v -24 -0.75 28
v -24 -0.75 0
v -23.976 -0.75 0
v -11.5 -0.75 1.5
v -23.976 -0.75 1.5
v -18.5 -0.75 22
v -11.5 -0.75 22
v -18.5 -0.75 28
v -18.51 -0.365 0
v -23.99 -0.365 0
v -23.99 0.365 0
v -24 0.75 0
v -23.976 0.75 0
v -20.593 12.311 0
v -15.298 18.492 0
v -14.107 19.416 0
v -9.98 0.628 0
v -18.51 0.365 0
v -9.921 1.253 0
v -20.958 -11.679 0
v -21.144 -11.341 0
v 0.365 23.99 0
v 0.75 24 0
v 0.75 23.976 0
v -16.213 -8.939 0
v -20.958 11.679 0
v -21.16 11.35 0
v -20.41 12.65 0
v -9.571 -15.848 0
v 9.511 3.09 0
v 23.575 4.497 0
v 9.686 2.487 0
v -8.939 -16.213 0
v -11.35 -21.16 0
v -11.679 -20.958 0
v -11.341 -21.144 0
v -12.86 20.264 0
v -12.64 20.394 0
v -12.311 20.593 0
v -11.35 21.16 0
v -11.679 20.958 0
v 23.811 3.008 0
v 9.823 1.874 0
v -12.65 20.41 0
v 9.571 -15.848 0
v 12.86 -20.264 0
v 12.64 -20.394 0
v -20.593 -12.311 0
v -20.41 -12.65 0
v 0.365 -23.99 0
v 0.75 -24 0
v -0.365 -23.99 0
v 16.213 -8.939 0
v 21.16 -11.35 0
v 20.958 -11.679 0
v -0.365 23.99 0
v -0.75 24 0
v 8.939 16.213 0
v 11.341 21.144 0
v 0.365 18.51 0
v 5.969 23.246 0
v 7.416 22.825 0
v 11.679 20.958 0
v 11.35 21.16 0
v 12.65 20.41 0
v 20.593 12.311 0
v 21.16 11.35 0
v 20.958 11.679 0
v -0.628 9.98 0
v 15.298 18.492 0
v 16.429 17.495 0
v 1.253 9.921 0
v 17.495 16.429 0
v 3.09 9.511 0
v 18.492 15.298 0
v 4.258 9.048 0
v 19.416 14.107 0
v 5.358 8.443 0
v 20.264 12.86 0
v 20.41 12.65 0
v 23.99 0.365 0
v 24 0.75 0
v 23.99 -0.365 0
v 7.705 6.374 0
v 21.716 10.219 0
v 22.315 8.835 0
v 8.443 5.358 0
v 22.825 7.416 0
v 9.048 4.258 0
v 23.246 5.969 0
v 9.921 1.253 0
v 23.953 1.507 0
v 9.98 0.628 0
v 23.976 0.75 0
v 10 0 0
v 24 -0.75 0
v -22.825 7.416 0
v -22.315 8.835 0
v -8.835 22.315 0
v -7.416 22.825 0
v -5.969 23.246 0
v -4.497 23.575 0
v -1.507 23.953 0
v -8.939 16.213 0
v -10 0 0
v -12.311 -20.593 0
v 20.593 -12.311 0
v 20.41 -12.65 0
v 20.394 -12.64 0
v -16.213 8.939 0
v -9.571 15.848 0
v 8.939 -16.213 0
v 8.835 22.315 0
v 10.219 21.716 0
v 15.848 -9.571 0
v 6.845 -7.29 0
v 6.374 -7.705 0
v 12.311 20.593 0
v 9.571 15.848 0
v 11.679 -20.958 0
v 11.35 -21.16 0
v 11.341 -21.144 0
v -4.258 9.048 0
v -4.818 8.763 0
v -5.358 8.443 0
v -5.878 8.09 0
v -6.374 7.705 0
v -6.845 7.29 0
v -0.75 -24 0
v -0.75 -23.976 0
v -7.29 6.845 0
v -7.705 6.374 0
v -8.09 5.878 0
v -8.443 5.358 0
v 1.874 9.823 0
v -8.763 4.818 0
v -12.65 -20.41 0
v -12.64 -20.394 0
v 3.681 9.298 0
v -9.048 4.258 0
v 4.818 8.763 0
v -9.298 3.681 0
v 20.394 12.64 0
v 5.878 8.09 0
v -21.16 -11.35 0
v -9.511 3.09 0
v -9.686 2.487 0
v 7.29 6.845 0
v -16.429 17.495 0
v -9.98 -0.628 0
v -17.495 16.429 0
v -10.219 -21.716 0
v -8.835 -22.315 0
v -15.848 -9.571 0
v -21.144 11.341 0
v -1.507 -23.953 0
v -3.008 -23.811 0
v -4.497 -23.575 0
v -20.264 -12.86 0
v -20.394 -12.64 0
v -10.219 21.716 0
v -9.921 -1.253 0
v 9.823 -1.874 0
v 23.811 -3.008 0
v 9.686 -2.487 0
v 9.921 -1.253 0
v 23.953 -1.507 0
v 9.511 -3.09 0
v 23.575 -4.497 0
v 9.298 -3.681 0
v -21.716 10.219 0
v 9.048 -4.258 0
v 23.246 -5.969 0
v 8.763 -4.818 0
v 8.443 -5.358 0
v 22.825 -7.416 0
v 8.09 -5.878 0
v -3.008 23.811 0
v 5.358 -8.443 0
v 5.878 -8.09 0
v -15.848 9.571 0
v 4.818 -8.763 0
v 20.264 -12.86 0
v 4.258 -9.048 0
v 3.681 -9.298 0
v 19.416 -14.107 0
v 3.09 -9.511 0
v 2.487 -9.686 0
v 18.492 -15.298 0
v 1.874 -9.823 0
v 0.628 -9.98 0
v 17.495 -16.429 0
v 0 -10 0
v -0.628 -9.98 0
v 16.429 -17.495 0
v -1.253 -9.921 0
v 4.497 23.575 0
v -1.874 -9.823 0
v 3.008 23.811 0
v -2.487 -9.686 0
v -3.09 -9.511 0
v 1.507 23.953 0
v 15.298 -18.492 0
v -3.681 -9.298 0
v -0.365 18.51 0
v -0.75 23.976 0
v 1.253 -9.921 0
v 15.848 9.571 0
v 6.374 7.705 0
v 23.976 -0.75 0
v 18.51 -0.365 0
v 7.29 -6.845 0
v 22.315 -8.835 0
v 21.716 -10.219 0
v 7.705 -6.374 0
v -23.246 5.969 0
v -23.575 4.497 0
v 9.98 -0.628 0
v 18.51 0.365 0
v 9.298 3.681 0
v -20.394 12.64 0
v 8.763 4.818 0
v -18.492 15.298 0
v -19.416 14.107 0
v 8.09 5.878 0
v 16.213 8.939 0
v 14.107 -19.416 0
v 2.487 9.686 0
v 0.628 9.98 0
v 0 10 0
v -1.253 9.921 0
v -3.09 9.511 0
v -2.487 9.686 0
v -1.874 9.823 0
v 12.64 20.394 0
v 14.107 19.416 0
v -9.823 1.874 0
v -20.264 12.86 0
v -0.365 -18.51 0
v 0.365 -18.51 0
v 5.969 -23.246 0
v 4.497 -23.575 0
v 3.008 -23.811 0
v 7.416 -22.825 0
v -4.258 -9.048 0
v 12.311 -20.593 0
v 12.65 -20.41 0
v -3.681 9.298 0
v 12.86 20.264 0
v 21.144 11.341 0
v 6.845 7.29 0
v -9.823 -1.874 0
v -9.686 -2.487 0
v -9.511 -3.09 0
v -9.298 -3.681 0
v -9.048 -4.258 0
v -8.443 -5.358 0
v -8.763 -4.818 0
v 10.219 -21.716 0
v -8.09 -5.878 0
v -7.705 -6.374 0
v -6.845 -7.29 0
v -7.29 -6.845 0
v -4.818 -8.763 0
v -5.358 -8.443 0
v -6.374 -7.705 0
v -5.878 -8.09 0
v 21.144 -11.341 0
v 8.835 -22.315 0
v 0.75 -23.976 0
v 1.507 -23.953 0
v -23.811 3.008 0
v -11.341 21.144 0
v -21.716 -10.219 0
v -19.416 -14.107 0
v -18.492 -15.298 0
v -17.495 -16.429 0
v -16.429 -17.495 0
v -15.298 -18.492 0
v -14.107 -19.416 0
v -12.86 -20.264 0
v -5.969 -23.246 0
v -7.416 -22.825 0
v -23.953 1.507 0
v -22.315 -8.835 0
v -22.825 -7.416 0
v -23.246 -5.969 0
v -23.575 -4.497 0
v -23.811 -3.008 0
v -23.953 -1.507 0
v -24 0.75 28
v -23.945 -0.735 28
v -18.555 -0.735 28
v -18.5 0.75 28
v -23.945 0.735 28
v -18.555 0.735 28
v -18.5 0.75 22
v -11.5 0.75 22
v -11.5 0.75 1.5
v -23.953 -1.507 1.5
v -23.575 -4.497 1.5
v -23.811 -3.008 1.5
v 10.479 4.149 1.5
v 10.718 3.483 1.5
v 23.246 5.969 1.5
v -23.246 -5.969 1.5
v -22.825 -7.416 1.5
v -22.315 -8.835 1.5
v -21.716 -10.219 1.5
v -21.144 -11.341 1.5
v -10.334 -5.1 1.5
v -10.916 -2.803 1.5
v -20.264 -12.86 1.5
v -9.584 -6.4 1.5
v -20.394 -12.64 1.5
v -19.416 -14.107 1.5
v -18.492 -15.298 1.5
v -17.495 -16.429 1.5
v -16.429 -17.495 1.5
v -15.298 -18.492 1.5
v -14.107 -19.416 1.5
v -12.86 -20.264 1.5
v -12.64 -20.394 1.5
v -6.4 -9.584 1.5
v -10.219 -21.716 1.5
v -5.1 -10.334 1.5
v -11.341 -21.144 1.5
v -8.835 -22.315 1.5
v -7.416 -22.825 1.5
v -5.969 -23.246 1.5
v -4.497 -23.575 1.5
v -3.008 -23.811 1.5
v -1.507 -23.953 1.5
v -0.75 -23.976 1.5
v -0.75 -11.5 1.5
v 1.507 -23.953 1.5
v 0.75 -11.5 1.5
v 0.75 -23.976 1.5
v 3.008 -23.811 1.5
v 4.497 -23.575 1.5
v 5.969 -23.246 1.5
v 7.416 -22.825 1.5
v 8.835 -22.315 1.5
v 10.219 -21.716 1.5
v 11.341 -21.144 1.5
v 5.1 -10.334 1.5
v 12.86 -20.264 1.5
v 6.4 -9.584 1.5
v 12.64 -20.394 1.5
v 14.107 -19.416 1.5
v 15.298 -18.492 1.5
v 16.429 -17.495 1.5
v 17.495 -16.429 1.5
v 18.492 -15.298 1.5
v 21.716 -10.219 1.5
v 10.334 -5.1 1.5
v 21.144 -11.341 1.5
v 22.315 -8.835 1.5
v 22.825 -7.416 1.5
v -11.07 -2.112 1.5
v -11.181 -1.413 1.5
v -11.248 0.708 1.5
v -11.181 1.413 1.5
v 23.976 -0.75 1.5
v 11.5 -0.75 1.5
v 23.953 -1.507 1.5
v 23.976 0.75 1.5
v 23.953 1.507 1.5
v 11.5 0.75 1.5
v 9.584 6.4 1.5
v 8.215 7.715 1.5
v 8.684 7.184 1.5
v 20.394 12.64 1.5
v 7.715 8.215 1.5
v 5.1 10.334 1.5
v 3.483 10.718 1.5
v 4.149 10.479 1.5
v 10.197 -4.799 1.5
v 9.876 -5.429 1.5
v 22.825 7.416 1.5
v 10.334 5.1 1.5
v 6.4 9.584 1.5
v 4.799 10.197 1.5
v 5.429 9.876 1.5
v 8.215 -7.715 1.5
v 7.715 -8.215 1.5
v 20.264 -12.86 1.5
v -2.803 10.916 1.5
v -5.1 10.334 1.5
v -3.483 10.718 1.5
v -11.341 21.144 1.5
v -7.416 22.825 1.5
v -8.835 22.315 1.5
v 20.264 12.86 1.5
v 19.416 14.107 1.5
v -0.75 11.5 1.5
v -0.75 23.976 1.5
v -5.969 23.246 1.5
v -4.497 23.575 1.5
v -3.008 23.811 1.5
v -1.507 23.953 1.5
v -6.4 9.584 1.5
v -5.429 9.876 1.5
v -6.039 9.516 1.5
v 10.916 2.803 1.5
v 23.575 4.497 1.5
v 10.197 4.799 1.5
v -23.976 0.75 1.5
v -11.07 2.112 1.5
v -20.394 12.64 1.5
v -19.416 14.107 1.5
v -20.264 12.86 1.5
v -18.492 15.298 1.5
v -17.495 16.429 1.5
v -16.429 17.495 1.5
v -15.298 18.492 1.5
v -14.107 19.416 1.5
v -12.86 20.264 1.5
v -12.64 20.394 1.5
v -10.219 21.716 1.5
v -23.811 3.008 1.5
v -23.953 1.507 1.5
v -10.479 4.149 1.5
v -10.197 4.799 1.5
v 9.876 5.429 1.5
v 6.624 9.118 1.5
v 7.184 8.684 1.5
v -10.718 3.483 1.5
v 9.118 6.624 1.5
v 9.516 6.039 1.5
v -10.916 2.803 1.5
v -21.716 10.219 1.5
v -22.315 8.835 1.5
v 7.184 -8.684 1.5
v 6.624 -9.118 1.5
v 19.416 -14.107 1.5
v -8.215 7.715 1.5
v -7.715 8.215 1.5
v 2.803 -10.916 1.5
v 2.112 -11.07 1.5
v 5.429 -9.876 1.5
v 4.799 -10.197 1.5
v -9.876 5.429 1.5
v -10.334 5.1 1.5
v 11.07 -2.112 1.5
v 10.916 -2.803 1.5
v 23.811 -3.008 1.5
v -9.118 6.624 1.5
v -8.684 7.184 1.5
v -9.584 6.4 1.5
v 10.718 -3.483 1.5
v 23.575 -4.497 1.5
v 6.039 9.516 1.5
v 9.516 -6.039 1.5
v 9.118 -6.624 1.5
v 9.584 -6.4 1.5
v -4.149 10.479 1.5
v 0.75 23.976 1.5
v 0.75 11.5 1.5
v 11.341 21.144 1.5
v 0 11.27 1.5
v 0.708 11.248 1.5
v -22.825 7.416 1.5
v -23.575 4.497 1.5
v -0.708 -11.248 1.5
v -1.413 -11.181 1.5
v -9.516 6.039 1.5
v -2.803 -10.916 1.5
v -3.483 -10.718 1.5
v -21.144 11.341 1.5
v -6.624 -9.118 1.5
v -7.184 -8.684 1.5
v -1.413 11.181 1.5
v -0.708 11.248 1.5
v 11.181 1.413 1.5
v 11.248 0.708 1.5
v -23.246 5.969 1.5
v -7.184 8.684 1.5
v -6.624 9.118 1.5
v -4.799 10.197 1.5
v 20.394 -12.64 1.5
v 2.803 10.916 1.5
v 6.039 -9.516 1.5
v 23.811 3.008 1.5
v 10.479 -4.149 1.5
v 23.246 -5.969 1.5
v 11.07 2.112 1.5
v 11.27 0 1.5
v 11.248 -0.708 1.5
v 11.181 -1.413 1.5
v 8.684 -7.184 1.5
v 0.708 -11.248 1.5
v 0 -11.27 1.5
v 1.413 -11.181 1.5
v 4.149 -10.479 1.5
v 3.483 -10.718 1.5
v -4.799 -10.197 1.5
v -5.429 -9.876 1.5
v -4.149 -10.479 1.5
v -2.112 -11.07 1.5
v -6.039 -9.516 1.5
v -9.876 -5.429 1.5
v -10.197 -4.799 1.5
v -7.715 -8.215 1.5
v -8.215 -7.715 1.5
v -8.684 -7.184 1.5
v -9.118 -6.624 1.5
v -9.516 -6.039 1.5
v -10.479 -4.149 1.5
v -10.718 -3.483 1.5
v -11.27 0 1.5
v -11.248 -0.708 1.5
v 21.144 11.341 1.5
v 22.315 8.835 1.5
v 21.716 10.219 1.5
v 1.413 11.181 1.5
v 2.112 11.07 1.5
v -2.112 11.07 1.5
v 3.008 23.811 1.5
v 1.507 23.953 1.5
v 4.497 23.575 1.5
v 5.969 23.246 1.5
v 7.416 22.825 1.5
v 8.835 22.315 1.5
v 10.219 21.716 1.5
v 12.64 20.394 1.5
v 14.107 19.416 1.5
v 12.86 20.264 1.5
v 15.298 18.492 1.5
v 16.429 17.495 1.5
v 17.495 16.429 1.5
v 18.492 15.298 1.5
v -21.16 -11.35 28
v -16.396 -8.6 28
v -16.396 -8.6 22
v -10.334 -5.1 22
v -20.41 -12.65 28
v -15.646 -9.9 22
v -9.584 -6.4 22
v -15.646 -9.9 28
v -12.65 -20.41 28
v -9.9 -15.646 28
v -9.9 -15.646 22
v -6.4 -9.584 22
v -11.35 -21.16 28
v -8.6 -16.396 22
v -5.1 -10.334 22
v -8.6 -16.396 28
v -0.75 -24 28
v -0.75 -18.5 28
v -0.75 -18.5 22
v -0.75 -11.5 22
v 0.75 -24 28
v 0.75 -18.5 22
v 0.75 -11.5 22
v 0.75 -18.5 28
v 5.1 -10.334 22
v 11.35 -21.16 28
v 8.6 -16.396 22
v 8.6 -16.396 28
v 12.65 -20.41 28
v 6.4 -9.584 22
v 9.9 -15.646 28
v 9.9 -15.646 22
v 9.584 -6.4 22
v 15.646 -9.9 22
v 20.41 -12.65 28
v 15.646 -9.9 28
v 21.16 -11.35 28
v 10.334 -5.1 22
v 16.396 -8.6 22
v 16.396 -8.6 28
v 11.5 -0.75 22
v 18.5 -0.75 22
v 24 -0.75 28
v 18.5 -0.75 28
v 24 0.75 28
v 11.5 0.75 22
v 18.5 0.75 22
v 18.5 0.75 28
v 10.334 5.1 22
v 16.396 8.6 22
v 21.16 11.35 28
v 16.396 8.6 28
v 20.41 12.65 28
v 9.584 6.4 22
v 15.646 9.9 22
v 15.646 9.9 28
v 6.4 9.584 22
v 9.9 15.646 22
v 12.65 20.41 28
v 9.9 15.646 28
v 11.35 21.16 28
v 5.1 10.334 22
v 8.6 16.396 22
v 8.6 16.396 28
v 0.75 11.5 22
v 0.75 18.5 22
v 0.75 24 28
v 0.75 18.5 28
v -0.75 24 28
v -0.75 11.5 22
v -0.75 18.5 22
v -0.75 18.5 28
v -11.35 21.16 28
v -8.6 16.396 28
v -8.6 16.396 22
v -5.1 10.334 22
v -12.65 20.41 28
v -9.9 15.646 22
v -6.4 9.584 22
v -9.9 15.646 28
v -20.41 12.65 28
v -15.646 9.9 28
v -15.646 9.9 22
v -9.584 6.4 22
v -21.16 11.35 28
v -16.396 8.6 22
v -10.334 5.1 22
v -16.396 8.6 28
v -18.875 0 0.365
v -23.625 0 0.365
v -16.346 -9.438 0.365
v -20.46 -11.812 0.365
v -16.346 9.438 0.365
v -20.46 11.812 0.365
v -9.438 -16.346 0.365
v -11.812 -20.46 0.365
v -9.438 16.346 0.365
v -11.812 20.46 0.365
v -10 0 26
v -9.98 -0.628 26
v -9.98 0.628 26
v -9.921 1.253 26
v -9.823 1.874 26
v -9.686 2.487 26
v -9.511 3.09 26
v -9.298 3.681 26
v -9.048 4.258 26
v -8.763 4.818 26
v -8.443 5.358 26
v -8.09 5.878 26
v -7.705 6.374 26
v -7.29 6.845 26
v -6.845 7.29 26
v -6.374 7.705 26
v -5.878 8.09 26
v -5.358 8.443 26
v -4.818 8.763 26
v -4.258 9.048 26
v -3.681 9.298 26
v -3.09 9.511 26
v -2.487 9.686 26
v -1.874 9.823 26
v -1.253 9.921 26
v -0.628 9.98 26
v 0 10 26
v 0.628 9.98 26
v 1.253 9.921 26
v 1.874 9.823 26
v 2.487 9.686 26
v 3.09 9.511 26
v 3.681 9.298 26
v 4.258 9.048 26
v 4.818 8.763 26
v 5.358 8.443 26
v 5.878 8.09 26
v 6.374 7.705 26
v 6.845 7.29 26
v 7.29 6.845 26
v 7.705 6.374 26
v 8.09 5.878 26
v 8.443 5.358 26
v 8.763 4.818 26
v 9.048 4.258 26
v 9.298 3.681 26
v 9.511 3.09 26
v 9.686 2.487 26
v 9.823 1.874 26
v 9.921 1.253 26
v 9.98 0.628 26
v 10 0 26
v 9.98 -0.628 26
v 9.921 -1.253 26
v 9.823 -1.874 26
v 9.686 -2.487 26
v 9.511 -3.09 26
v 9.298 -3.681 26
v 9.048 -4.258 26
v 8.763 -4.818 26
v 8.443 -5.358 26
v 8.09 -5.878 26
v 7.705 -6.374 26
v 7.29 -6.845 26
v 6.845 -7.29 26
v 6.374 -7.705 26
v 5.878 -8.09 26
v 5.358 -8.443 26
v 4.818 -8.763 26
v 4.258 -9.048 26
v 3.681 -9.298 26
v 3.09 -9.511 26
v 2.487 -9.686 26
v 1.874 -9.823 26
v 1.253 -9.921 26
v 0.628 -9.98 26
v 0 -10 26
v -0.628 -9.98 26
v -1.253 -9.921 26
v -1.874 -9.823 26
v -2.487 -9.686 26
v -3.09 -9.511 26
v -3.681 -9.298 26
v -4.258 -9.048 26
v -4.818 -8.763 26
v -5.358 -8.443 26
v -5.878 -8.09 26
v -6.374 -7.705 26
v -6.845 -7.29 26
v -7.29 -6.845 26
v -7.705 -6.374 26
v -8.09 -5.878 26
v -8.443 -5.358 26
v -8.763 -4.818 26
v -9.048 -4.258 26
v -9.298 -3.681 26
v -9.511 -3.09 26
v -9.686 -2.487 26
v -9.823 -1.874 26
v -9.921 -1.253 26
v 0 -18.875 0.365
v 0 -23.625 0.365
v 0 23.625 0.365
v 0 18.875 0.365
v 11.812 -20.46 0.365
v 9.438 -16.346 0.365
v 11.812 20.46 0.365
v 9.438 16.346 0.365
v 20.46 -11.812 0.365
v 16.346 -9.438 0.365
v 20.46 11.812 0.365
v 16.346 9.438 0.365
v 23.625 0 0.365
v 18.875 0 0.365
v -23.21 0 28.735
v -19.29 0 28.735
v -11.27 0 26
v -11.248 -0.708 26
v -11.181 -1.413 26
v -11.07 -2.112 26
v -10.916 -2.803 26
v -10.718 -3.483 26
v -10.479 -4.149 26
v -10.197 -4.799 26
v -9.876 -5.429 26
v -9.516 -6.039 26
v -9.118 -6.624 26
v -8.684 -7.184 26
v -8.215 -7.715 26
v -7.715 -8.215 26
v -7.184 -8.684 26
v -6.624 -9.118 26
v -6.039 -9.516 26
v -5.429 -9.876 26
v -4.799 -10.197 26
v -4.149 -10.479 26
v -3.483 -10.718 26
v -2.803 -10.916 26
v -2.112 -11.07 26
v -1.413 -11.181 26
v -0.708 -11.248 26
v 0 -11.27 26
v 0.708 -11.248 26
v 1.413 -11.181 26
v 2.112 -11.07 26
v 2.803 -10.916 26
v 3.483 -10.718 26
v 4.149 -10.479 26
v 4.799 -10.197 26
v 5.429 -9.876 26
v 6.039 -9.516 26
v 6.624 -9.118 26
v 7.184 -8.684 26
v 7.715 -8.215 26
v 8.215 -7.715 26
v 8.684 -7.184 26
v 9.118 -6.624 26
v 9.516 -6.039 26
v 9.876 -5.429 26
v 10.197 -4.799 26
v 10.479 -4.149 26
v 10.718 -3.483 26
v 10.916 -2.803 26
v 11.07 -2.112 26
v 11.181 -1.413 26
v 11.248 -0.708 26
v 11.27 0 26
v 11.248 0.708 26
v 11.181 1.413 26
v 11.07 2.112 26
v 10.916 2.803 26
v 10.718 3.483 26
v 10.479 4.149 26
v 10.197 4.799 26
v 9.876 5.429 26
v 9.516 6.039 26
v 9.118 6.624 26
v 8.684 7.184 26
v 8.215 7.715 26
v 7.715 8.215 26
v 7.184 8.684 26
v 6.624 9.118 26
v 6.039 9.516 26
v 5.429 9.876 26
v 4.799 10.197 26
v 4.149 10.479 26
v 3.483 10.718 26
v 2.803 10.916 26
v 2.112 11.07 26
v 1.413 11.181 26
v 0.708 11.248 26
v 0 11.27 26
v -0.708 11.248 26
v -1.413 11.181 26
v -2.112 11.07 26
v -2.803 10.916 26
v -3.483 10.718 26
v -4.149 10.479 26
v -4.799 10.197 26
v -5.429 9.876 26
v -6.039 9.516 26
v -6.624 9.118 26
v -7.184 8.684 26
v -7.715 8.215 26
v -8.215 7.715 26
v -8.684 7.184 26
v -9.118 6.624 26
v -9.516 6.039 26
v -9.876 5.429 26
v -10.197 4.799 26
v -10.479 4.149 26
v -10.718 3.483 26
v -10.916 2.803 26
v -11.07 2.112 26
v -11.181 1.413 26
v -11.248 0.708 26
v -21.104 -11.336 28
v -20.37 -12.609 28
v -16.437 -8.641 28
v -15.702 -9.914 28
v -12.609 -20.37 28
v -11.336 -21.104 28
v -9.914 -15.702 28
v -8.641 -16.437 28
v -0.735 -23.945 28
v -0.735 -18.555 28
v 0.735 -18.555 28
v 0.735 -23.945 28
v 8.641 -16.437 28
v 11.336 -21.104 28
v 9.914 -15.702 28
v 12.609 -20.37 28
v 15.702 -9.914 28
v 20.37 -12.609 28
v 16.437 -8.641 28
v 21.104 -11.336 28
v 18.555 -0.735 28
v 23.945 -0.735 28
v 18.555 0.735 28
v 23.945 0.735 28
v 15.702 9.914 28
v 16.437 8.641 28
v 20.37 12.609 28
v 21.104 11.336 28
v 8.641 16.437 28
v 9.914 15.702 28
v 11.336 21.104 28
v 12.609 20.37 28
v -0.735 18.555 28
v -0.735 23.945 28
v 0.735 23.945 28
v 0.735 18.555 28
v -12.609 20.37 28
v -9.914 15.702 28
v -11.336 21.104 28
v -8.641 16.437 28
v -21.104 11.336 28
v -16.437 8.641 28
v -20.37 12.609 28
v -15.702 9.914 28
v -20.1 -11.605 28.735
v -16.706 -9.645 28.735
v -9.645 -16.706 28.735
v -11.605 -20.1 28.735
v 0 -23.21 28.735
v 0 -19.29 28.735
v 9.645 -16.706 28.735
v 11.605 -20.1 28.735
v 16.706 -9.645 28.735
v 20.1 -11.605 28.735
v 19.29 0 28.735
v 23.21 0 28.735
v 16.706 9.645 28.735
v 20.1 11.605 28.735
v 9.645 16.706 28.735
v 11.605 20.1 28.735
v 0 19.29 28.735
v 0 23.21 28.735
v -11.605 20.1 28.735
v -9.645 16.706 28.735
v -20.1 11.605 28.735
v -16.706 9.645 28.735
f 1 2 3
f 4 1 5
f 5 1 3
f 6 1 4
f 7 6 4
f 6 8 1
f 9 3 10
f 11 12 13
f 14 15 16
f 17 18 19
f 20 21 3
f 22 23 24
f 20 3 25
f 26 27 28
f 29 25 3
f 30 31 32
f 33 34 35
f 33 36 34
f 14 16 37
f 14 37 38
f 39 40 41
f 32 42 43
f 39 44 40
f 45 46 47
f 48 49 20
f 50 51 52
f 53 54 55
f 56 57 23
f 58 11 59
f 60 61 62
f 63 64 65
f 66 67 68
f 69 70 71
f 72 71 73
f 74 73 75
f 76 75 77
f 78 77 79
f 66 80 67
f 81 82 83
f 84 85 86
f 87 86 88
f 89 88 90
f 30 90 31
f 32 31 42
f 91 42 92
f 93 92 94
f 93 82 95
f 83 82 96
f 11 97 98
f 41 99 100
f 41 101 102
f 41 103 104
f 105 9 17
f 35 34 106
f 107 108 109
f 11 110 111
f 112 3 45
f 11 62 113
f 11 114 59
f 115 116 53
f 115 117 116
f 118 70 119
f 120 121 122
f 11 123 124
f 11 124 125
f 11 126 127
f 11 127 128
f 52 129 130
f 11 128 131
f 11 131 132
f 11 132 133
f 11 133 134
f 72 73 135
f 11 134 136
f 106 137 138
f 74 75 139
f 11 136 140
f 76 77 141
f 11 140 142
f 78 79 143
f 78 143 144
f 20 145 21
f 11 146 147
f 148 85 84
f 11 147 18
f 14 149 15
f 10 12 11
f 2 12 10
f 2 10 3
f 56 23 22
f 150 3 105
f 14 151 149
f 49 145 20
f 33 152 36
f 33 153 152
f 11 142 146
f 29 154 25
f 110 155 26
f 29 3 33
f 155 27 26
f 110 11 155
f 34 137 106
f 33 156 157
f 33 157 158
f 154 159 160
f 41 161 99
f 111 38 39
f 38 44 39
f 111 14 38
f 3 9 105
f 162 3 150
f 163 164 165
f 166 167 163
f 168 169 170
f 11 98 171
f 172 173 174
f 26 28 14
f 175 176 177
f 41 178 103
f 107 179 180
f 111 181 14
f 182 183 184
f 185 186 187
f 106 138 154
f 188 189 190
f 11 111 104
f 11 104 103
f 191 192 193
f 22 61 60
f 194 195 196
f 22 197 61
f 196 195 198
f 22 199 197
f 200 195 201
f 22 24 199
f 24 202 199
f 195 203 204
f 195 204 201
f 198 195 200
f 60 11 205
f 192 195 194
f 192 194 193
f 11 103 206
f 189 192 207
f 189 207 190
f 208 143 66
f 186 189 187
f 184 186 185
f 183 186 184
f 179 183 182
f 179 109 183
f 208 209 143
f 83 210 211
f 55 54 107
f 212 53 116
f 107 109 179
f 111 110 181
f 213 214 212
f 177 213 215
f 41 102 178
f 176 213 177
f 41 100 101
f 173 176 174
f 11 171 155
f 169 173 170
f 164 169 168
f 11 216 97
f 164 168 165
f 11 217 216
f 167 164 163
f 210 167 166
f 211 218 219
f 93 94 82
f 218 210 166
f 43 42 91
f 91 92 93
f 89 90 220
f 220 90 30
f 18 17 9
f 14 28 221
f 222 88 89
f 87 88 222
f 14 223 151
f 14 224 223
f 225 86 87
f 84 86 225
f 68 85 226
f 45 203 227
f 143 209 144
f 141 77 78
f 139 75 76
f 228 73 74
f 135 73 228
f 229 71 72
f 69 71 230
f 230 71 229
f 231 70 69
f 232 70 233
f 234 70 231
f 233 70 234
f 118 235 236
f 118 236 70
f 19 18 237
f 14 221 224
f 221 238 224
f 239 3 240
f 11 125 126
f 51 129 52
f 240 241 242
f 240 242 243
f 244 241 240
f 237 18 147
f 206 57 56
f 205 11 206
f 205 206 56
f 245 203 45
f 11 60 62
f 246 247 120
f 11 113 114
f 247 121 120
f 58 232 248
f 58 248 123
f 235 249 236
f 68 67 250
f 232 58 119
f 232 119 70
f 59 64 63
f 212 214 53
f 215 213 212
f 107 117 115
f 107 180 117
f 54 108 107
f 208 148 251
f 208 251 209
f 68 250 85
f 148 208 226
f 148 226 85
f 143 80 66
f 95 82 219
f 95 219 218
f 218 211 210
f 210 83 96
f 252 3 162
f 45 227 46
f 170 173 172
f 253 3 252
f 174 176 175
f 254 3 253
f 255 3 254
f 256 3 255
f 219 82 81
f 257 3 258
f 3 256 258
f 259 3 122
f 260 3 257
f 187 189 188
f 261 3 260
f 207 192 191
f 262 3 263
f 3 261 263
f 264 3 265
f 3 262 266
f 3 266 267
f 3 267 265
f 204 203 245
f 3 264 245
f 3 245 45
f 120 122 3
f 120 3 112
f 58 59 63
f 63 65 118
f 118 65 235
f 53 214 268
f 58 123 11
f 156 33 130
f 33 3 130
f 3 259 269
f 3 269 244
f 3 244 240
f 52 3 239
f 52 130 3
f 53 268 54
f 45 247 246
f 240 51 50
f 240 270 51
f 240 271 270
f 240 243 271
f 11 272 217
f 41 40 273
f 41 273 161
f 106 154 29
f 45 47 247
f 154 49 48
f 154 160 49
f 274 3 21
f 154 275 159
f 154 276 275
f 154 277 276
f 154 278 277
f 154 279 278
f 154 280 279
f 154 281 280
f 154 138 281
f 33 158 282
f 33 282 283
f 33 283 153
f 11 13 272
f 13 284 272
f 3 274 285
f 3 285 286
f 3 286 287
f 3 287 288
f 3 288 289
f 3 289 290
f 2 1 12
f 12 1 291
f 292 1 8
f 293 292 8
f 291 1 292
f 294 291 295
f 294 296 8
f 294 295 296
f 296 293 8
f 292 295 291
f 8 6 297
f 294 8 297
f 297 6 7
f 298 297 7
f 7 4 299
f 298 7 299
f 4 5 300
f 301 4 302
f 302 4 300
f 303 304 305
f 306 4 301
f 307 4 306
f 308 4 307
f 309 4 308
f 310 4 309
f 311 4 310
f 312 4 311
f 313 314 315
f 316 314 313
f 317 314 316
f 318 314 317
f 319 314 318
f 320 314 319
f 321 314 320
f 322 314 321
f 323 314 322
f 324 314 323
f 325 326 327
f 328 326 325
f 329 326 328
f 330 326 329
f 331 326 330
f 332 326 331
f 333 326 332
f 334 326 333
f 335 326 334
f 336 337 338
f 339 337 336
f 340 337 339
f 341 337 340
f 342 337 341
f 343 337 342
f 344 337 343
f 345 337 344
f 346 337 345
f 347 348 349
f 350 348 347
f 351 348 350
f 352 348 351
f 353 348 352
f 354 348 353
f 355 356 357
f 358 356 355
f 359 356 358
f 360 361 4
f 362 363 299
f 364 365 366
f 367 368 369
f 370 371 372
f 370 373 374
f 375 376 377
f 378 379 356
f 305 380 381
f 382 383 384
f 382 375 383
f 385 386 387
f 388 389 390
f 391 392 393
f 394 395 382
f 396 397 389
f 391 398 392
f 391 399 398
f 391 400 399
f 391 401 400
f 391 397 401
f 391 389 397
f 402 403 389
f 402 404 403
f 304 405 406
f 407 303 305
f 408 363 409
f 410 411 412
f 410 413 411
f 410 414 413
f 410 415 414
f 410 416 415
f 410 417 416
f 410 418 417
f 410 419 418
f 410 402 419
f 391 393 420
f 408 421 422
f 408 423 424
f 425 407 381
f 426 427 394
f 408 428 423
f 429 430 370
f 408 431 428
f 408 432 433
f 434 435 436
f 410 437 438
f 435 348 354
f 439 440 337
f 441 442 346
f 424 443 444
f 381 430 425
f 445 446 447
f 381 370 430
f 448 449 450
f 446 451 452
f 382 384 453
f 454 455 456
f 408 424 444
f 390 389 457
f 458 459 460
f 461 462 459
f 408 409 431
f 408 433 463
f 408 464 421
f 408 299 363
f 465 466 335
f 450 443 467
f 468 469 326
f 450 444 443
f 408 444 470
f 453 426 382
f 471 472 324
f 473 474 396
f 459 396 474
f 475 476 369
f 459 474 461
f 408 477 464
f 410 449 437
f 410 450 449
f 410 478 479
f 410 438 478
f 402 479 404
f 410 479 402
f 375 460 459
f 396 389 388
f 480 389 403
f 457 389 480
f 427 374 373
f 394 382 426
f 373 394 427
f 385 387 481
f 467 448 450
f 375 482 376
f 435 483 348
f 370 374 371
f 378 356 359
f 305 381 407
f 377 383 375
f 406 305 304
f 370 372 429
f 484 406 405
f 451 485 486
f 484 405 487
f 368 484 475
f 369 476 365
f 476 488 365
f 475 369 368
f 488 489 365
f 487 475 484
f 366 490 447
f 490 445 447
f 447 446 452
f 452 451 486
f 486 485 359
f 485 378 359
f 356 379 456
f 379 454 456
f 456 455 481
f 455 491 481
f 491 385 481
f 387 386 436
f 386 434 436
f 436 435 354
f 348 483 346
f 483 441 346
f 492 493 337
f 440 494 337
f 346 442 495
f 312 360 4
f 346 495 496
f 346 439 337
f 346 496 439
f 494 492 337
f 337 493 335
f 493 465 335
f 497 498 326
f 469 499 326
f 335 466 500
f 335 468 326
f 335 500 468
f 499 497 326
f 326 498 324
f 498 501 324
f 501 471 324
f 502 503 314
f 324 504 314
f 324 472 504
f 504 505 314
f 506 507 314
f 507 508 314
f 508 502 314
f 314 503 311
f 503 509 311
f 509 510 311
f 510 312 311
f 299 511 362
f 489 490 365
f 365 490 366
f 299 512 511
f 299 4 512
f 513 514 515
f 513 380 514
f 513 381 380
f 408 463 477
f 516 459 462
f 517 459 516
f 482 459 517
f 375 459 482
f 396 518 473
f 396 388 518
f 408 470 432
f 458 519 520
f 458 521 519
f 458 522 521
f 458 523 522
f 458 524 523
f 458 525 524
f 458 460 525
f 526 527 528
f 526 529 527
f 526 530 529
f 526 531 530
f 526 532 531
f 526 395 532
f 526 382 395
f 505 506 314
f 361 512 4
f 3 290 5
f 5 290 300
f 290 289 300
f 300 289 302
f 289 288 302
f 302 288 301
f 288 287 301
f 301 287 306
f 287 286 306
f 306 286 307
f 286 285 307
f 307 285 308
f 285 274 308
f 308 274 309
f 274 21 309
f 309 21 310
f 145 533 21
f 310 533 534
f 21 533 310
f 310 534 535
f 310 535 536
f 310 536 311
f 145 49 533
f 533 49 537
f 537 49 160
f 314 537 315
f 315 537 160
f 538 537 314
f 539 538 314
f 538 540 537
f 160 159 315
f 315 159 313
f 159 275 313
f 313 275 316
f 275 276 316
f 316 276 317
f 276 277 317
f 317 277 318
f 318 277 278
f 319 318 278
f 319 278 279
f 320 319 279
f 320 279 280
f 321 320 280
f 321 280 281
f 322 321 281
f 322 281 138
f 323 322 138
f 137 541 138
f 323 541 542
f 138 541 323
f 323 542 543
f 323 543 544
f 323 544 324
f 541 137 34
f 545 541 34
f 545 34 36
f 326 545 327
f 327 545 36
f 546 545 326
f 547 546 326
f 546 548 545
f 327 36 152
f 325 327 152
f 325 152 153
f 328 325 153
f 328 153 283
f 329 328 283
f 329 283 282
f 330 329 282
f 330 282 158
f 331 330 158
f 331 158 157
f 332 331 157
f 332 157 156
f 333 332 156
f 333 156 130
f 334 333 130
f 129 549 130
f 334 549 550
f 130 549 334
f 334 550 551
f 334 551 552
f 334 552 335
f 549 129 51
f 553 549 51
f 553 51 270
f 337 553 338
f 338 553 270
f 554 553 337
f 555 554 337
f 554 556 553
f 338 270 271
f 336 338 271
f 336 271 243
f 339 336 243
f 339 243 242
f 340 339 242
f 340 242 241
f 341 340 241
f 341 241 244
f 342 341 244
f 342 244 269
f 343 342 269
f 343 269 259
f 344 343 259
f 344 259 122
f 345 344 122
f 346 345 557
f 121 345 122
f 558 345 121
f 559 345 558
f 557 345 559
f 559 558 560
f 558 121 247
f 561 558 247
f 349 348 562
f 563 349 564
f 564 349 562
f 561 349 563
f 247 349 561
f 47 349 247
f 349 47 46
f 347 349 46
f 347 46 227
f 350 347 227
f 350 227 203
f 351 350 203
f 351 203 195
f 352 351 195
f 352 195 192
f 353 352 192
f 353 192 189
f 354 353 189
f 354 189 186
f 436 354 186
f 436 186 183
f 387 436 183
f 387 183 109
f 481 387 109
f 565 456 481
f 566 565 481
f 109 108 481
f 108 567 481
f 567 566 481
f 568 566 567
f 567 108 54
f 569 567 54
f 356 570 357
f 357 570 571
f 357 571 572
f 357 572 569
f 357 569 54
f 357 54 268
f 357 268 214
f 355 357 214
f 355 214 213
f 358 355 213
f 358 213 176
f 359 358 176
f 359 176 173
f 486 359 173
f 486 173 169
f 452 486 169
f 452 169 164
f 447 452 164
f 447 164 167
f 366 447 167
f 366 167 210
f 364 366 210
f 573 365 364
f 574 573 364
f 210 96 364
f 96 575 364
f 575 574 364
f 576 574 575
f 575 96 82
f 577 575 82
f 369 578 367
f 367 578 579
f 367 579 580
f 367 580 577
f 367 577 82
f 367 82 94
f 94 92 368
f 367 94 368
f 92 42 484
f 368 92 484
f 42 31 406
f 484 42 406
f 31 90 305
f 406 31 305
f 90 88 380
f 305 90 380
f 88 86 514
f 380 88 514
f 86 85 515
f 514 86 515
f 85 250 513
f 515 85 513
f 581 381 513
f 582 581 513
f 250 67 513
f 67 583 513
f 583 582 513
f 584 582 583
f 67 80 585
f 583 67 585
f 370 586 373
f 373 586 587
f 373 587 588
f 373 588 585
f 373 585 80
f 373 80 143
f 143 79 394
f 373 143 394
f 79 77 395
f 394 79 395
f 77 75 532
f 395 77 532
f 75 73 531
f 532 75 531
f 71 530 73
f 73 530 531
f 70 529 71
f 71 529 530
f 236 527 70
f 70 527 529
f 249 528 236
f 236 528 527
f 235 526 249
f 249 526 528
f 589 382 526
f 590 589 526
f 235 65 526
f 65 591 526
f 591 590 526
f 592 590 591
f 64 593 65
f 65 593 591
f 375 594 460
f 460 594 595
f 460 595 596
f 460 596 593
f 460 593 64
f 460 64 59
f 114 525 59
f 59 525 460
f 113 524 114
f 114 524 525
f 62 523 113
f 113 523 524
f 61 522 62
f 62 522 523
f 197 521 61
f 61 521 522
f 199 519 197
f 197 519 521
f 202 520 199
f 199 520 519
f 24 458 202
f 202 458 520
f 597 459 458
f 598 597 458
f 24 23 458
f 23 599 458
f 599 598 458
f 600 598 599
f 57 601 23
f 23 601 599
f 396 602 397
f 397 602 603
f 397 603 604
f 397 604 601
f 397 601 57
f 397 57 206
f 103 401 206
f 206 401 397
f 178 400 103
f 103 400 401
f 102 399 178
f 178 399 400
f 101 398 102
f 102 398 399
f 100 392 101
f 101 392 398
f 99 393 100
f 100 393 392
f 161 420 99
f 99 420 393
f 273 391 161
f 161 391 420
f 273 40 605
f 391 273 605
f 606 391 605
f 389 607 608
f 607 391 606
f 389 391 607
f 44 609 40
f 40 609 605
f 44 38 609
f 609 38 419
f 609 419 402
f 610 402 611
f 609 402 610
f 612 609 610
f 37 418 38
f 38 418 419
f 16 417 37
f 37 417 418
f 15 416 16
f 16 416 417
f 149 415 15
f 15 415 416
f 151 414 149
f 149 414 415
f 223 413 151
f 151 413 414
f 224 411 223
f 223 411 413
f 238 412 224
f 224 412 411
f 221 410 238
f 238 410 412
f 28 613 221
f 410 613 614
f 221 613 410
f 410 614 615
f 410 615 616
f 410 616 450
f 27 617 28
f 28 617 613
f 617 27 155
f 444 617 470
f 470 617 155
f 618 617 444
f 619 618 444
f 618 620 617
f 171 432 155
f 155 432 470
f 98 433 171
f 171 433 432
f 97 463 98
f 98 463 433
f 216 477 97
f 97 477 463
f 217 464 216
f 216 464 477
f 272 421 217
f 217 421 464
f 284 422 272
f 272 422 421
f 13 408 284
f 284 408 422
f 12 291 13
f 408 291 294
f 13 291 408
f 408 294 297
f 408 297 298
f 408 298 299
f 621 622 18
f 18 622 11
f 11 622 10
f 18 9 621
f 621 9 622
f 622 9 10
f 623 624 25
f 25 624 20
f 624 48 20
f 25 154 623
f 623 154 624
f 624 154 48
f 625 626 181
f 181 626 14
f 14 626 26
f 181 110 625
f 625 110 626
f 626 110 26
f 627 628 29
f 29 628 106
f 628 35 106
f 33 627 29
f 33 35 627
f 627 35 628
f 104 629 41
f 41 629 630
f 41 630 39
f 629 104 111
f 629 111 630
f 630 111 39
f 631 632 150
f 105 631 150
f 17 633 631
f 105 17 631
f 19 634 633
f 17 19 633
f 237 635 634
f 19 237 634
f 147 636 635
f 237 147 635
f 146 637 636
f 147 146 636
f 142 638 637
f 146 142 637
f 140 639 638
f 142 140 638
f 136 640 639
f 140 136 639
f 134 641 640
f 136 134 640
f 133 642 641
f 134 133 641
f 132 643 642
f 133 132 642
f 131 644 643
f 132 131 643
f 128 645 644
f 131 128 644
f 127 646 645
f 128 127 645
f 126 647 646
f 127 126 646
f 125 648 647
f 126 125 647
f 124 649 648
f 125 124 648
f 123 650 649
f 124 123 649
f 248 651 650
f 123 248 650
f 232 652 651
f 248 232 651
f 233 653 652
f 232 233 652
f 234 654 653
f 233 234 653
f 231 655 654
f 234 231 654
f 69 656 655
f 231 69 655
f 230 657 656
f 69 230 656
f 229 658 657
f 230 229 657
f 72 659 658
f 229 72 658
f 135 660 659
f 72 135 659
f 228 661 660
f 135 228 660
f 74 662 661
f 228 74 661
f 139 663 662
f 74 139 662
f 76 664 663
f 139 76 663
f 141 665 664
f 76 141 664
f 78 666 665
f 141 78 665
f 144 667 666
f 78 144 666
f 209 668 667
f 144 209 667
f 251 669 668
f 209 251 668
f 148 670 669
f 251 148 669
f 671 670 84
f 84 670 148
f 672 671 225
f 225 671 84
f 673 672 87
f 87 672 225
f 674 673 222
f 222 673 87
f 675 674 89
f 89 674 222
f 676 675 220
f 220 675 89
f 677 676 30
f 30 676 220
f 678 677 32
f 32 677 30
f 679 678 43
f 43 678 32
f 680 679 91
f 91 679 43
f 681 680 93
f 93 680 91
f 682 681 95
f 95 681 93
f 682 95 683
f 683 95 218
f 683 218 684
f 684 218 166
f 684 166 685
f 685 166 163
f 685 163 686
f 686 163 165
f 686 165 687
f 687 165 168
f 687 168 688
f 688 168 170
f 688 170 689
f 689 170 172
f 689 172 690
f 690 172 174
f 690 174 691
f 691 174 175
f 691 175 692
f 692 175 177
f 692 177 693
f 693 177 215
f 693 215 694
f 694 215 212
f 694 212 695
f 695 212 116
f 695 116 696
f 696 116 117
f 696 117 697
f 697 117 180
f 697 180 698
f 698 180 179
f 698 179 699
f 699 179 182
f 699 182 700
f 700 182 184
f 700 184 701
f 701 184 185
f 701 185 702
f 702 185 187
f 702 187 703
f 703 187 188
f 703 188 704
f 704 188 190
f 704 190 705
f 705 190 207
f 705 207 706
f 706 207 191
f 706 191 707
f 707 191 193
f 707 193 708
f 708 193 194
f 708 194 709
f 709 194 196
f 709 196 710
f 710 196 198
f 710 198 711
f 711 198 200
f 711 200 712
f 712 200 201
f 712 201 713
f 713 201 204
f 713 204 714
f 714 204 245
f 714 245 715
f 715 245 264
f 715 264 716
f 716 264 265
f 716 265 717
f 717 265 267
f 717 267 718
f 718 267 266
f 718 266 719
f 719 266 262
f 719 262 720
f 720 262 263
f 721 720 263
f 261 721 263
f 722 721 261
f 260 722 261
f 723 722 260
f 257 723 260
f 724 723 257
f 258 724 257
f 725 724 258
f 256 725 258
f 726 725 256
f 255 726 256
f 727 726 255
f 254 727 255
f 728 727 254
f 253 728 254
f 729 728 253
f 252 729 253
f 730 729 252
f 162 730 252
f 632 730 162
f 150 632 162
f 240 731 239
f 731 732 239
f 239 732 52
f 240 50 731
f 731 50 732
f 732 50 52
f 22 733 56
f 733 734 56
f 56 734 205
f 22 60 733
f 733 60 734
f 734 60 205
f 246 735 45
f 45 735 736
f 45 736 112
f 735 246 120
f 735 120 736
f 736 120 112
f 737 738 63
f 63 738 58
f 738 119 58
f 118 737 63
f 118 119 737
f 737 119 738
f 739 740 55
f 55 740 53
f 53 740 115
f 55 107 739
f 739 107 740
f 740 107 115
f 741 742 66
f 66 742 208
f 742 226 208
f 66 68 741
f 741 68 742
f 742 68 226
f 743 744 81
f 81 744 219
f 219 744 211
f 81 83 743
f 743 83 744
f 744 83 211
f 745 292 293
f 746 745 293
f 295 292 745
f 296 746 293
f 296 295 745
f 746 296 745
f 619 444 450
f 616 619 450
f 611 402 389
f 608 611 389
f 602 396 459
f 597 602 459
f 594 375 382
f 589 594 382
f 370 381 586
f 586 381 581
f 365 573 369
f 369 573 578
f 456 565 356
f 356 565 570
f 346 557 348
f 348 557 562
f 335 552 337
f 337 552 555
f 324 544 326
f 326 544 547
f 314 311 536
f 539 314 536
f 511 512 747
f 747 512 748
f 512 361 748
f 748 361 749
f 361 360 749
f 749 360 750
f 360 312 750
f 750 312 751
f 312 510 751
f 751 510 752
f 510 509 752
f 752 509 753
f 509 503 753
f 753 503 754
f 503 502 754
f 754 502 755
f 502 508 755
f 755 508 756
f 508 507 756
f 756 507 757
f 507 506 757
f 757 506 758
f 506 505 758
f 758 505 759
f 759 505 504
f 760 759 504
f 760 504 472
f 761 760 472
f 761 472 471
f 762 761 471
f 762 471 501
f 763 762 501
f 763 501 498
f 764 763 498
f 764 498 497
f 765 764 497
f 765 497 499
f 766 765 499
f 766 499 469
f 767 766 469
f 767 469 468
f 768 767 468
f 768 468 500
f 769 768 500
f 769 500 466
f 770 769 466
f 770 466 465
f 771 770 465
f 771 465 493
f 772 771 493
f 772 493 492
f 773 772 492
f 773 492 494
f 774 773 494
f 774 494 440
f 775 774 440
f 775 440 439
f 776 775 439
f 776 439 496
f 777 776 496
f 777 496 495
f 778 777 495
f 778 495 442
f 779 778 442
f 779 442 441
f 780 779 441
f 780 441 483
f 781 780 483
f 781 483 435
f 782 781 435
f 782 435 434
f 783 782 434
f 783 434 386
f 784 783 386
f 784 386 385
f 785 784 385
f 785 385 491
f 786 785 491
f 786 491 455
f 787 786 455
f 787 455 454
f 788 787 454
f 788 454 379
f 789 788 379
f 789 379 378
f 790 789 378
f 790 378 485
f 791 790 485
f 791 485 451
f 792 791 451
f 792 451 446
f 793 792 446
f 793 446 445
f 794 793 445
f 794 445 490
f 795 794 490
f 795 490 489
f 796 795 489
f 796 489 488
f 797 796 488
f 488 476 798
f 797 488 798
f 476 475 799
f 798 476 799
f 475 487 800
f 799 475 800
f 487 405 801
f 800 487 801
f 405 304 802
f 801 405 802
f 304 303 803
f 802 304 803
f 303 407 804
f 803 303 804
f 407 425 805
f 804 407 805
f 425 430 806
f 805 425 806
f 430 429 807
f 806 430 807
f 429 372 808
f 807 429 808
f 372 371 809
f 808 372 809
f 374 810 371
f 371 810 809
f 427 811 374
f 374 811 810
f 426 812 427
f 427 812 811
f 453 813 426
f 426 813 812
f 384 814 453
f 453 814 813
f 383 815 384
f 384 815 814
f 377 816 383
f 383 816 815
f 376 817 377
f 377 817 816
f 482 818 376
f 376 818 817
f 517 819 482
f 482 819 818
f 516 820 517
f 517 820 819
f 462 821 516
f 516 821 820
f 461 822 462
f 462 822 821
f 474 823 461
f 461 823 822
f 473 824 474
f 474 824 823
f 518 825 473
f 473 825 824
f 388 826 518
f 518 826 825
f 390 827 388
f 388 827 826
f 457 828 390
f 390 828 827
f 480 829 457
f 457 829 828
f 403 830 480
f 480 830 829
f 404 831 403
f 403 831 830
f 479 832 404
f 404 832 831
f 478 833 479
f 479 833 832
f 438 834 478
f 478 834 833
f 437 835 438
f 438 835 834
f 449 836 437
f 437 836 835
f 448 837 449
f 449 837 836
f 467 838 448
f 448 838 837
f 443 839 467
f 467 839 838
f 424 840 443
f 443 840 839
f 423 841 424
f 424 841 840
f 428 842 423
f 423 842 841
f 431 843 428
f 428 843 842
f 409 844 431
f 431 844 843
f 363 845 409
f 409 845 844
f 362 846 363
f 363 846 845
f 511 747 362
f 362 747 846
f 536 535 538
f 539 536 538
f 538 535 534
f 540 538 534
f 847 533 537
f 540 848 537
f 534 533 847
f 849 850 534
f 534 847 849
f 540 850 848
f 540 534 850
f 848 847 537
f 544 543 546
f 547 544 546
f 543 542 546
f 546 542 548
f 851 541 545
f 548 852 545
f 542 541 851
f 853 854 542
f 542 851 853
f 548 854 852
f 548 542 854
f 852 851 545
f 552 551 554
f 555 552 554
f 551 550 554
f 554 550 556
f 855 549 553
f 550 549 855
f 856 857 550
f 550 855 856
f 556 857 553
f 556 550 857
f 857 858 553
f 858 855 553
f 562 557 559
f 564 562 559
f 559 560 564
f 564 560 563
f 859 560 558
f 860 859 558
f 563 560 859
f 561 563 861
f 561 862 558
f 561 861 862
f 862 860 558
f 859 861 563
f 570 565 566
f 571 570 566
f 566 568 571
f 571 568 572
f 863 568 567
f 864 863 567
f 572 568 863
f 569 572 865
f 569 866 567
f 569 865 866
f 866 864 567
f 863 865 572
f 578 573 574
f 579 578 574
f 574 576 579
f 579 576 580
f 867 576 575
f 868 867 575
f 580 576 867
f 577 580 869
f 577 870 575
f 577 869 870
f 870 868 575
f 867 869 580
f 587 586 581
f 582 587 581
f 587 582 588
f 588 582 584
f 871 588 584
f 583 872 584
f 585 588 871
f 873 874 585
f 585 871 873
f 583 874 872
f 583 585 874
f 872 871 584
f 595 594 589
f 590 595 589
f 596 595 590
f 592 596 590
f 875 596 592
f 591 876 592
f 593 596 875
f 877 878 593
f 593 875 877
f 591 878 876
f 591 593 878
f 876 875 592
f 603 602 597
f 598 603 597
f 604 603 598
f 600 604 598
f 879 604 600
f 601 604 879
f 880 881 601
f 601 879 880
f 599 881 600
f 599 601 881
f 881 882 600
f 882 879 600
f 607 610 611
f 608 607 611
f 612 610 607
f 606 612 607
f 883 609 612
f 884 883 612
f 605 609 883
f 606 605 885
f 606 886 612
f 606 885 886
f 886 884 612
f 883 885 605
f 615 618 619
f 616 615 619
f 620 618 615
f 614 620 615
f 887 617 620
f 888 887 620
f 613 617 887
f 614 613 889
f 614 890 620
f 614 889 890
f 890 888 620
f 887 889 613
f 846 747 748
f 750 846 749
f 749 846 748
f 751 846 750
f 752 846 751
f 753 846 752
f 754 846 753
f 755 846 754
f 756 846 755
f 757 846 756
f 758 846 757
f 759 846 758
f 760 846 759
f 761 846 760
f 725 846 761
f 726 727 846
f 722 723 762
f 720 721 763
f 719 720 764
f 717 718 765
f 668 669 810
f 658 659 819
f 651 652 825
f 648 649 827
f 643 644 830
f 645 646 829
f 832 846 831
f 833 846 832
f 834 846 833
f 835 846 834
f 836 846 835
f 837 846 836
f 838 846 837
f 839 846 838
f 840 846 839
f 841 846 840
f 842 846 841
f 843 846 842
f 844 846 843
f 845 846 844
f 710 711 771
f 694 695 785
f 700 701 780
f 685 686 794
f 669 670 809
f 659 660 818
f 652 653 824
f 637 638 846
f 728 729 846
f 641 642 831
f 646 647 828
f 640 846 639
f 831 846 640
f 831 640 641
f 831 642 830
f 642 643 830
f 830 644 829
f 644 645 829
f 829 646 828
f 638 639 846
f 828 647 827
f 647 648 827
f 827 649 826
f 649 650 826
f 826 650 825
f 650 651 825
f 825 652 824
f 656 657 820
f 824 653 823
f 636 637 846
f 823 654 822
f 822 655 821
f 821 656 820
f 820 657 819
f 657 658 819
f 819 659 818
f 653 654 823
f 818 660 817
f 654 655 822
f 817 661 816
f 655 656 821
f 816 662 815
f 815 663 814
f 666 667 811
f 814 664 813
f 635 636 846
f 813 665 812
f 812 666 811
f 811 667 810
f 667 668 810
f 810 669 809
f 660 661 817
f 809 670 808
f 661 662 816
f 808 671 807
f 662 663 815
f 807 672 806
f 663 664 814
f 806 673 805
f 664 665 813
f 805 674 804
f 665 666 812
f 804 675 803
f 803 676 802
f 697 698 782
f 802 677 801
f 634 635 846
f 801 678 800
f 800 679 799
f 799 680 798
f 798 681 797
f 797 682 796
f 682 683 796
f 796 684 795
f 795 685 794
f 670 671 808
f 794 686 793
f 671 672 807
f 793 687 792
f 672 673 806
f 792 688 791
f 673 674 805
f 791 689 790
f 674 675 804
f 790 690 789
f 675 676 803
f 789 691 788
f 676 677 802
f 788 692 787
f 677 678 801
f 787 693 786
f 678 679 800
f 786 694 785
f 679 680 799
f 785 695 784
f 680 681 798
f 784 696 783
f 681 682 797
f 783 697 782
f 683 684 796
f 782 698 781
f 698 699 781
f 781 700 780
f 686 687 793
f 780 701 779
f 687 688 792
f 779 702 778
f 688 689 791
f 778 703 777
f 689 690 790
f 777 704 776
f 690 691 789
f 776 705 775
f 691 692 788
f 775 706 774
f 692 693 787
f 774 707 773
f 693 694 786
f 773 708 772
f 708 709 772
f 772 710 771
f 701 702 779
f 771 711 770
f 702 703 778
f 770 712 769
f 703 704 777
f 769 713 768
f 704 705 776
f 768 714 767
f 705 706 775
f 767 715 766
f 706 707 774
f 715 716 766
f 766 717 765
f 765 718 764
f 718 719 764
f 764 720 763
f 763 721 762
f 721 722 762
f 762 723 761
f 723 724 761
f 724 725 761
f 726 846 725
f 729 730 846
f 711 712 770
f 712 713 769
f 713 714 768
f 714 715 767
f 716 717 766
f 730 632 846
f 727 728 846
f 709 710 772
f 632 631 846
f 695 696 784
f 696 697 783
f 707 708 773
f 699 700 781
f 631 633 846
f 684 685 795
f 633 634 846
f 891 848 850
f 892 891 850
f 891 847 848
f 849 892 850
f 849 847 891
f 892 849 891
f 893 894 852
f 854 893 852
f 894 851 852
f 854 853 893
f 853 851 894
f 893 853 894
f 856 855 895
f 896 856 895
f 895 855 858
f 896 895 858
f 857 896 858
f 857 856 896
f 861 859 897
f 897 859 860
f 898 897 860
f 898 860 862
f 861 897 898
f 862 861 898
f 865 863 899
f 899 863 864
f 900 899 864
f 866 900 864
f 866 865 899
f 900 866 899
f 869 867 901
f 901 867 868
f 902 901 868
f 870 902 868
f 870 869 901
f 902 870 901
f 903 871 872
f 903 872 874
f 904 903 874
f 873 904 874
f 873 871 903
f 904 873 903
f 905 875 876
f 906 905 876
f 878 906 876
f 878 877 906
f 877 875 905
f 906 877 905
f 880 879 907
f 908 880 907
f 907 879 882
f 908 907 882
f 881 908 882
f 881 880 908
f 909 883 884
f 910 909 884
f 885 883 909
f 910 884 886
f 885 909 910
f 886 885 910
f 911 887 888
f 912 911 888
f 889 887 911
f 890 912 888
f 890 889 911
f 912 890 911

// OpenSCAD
// compatible with OpenSCAD version 2014.03+ due to 'faces' parameter in polyhedron 

refl_d = 48;		//reflector diameter
refl_t = 1.5;		//reflector wall thickness
refl_h = 22;		//reflector wall height
refl_s = 2;			//space for wiring between ring and next reflector

ring_od = 37;		//LED ring outer diameter
ring_id = 23;		//LED ring inner diameter
ring_h = 4;			//LED ring height
ring_n = 12;		//number of LEDs on ring

tol = 0.98;			//tolerance

main();

module main() {
	difference() {
		union() {
			base_plate();
			core();
			fins();
		}
		shaft();
		cutouts();
	}
}

module base_plate() {
	cylinder (d=refl_d, h=refl_t, $fn=100);
}

module core() {
	cylinder (d=ring_id*tol, h=refl_h+ring_h, $fn=100);
}

module shaft() {
	translate([0,0,-0.5]) cylinder (d=ring_id-2*refl_t, h=refl_h+ring_h+1, $fn=100);
}

module fins() {
	for (i = [1:ring_n]) {
		rotate([0,0,i * 360 / ring_n]) translate([0 , refl_d/2, 0])
			fin(x=refl_t, y1=(refl_d-ring_id)/2, z1=refl_h, y2=(refl_d-ring_od)/2, z2=ring_h+refl_s);
	}
}

module fin(x, y1, z1, y2, z2) {
	union() {
		translate ([ 0, -y1/2, z1   /2 ]) cube( size=[ x, y1, z1 ], center = true);
		translate ([ 0, -y2/2, z1+z2/2 ]) cube( size=[ x, y2, z2 ], center = true);
		translate ([ 0, -y2/2, z1+z2   ]) roof( width=x*tol, length=y2*tol );
	}
}

module roof (width, length) {
	s=width/2;
	l=length/2;
	polyhedron(  points=[ [s,l,0],[s,-l,0],[-s,-l,0],[-s,l,0],[0,l-s,s],[0,-l+s,s] ],
			        faces=[ [0,1,5,4],[1,2,5],[2,3,4,5],[3,0,4],[1,0,3,2] ] );
}

module cutouts() {
	for (i = [1:ring_n]) {
		rotate([ 0, 0, i * 360 / ring_n ]) 
			translate ([ 0, refl_d/2-(refl_d-ring_od)/4, -0.01 ]) 
				roof( width=refl_t/2, length=(refl_d-ring_od)/2 );
	}
}
